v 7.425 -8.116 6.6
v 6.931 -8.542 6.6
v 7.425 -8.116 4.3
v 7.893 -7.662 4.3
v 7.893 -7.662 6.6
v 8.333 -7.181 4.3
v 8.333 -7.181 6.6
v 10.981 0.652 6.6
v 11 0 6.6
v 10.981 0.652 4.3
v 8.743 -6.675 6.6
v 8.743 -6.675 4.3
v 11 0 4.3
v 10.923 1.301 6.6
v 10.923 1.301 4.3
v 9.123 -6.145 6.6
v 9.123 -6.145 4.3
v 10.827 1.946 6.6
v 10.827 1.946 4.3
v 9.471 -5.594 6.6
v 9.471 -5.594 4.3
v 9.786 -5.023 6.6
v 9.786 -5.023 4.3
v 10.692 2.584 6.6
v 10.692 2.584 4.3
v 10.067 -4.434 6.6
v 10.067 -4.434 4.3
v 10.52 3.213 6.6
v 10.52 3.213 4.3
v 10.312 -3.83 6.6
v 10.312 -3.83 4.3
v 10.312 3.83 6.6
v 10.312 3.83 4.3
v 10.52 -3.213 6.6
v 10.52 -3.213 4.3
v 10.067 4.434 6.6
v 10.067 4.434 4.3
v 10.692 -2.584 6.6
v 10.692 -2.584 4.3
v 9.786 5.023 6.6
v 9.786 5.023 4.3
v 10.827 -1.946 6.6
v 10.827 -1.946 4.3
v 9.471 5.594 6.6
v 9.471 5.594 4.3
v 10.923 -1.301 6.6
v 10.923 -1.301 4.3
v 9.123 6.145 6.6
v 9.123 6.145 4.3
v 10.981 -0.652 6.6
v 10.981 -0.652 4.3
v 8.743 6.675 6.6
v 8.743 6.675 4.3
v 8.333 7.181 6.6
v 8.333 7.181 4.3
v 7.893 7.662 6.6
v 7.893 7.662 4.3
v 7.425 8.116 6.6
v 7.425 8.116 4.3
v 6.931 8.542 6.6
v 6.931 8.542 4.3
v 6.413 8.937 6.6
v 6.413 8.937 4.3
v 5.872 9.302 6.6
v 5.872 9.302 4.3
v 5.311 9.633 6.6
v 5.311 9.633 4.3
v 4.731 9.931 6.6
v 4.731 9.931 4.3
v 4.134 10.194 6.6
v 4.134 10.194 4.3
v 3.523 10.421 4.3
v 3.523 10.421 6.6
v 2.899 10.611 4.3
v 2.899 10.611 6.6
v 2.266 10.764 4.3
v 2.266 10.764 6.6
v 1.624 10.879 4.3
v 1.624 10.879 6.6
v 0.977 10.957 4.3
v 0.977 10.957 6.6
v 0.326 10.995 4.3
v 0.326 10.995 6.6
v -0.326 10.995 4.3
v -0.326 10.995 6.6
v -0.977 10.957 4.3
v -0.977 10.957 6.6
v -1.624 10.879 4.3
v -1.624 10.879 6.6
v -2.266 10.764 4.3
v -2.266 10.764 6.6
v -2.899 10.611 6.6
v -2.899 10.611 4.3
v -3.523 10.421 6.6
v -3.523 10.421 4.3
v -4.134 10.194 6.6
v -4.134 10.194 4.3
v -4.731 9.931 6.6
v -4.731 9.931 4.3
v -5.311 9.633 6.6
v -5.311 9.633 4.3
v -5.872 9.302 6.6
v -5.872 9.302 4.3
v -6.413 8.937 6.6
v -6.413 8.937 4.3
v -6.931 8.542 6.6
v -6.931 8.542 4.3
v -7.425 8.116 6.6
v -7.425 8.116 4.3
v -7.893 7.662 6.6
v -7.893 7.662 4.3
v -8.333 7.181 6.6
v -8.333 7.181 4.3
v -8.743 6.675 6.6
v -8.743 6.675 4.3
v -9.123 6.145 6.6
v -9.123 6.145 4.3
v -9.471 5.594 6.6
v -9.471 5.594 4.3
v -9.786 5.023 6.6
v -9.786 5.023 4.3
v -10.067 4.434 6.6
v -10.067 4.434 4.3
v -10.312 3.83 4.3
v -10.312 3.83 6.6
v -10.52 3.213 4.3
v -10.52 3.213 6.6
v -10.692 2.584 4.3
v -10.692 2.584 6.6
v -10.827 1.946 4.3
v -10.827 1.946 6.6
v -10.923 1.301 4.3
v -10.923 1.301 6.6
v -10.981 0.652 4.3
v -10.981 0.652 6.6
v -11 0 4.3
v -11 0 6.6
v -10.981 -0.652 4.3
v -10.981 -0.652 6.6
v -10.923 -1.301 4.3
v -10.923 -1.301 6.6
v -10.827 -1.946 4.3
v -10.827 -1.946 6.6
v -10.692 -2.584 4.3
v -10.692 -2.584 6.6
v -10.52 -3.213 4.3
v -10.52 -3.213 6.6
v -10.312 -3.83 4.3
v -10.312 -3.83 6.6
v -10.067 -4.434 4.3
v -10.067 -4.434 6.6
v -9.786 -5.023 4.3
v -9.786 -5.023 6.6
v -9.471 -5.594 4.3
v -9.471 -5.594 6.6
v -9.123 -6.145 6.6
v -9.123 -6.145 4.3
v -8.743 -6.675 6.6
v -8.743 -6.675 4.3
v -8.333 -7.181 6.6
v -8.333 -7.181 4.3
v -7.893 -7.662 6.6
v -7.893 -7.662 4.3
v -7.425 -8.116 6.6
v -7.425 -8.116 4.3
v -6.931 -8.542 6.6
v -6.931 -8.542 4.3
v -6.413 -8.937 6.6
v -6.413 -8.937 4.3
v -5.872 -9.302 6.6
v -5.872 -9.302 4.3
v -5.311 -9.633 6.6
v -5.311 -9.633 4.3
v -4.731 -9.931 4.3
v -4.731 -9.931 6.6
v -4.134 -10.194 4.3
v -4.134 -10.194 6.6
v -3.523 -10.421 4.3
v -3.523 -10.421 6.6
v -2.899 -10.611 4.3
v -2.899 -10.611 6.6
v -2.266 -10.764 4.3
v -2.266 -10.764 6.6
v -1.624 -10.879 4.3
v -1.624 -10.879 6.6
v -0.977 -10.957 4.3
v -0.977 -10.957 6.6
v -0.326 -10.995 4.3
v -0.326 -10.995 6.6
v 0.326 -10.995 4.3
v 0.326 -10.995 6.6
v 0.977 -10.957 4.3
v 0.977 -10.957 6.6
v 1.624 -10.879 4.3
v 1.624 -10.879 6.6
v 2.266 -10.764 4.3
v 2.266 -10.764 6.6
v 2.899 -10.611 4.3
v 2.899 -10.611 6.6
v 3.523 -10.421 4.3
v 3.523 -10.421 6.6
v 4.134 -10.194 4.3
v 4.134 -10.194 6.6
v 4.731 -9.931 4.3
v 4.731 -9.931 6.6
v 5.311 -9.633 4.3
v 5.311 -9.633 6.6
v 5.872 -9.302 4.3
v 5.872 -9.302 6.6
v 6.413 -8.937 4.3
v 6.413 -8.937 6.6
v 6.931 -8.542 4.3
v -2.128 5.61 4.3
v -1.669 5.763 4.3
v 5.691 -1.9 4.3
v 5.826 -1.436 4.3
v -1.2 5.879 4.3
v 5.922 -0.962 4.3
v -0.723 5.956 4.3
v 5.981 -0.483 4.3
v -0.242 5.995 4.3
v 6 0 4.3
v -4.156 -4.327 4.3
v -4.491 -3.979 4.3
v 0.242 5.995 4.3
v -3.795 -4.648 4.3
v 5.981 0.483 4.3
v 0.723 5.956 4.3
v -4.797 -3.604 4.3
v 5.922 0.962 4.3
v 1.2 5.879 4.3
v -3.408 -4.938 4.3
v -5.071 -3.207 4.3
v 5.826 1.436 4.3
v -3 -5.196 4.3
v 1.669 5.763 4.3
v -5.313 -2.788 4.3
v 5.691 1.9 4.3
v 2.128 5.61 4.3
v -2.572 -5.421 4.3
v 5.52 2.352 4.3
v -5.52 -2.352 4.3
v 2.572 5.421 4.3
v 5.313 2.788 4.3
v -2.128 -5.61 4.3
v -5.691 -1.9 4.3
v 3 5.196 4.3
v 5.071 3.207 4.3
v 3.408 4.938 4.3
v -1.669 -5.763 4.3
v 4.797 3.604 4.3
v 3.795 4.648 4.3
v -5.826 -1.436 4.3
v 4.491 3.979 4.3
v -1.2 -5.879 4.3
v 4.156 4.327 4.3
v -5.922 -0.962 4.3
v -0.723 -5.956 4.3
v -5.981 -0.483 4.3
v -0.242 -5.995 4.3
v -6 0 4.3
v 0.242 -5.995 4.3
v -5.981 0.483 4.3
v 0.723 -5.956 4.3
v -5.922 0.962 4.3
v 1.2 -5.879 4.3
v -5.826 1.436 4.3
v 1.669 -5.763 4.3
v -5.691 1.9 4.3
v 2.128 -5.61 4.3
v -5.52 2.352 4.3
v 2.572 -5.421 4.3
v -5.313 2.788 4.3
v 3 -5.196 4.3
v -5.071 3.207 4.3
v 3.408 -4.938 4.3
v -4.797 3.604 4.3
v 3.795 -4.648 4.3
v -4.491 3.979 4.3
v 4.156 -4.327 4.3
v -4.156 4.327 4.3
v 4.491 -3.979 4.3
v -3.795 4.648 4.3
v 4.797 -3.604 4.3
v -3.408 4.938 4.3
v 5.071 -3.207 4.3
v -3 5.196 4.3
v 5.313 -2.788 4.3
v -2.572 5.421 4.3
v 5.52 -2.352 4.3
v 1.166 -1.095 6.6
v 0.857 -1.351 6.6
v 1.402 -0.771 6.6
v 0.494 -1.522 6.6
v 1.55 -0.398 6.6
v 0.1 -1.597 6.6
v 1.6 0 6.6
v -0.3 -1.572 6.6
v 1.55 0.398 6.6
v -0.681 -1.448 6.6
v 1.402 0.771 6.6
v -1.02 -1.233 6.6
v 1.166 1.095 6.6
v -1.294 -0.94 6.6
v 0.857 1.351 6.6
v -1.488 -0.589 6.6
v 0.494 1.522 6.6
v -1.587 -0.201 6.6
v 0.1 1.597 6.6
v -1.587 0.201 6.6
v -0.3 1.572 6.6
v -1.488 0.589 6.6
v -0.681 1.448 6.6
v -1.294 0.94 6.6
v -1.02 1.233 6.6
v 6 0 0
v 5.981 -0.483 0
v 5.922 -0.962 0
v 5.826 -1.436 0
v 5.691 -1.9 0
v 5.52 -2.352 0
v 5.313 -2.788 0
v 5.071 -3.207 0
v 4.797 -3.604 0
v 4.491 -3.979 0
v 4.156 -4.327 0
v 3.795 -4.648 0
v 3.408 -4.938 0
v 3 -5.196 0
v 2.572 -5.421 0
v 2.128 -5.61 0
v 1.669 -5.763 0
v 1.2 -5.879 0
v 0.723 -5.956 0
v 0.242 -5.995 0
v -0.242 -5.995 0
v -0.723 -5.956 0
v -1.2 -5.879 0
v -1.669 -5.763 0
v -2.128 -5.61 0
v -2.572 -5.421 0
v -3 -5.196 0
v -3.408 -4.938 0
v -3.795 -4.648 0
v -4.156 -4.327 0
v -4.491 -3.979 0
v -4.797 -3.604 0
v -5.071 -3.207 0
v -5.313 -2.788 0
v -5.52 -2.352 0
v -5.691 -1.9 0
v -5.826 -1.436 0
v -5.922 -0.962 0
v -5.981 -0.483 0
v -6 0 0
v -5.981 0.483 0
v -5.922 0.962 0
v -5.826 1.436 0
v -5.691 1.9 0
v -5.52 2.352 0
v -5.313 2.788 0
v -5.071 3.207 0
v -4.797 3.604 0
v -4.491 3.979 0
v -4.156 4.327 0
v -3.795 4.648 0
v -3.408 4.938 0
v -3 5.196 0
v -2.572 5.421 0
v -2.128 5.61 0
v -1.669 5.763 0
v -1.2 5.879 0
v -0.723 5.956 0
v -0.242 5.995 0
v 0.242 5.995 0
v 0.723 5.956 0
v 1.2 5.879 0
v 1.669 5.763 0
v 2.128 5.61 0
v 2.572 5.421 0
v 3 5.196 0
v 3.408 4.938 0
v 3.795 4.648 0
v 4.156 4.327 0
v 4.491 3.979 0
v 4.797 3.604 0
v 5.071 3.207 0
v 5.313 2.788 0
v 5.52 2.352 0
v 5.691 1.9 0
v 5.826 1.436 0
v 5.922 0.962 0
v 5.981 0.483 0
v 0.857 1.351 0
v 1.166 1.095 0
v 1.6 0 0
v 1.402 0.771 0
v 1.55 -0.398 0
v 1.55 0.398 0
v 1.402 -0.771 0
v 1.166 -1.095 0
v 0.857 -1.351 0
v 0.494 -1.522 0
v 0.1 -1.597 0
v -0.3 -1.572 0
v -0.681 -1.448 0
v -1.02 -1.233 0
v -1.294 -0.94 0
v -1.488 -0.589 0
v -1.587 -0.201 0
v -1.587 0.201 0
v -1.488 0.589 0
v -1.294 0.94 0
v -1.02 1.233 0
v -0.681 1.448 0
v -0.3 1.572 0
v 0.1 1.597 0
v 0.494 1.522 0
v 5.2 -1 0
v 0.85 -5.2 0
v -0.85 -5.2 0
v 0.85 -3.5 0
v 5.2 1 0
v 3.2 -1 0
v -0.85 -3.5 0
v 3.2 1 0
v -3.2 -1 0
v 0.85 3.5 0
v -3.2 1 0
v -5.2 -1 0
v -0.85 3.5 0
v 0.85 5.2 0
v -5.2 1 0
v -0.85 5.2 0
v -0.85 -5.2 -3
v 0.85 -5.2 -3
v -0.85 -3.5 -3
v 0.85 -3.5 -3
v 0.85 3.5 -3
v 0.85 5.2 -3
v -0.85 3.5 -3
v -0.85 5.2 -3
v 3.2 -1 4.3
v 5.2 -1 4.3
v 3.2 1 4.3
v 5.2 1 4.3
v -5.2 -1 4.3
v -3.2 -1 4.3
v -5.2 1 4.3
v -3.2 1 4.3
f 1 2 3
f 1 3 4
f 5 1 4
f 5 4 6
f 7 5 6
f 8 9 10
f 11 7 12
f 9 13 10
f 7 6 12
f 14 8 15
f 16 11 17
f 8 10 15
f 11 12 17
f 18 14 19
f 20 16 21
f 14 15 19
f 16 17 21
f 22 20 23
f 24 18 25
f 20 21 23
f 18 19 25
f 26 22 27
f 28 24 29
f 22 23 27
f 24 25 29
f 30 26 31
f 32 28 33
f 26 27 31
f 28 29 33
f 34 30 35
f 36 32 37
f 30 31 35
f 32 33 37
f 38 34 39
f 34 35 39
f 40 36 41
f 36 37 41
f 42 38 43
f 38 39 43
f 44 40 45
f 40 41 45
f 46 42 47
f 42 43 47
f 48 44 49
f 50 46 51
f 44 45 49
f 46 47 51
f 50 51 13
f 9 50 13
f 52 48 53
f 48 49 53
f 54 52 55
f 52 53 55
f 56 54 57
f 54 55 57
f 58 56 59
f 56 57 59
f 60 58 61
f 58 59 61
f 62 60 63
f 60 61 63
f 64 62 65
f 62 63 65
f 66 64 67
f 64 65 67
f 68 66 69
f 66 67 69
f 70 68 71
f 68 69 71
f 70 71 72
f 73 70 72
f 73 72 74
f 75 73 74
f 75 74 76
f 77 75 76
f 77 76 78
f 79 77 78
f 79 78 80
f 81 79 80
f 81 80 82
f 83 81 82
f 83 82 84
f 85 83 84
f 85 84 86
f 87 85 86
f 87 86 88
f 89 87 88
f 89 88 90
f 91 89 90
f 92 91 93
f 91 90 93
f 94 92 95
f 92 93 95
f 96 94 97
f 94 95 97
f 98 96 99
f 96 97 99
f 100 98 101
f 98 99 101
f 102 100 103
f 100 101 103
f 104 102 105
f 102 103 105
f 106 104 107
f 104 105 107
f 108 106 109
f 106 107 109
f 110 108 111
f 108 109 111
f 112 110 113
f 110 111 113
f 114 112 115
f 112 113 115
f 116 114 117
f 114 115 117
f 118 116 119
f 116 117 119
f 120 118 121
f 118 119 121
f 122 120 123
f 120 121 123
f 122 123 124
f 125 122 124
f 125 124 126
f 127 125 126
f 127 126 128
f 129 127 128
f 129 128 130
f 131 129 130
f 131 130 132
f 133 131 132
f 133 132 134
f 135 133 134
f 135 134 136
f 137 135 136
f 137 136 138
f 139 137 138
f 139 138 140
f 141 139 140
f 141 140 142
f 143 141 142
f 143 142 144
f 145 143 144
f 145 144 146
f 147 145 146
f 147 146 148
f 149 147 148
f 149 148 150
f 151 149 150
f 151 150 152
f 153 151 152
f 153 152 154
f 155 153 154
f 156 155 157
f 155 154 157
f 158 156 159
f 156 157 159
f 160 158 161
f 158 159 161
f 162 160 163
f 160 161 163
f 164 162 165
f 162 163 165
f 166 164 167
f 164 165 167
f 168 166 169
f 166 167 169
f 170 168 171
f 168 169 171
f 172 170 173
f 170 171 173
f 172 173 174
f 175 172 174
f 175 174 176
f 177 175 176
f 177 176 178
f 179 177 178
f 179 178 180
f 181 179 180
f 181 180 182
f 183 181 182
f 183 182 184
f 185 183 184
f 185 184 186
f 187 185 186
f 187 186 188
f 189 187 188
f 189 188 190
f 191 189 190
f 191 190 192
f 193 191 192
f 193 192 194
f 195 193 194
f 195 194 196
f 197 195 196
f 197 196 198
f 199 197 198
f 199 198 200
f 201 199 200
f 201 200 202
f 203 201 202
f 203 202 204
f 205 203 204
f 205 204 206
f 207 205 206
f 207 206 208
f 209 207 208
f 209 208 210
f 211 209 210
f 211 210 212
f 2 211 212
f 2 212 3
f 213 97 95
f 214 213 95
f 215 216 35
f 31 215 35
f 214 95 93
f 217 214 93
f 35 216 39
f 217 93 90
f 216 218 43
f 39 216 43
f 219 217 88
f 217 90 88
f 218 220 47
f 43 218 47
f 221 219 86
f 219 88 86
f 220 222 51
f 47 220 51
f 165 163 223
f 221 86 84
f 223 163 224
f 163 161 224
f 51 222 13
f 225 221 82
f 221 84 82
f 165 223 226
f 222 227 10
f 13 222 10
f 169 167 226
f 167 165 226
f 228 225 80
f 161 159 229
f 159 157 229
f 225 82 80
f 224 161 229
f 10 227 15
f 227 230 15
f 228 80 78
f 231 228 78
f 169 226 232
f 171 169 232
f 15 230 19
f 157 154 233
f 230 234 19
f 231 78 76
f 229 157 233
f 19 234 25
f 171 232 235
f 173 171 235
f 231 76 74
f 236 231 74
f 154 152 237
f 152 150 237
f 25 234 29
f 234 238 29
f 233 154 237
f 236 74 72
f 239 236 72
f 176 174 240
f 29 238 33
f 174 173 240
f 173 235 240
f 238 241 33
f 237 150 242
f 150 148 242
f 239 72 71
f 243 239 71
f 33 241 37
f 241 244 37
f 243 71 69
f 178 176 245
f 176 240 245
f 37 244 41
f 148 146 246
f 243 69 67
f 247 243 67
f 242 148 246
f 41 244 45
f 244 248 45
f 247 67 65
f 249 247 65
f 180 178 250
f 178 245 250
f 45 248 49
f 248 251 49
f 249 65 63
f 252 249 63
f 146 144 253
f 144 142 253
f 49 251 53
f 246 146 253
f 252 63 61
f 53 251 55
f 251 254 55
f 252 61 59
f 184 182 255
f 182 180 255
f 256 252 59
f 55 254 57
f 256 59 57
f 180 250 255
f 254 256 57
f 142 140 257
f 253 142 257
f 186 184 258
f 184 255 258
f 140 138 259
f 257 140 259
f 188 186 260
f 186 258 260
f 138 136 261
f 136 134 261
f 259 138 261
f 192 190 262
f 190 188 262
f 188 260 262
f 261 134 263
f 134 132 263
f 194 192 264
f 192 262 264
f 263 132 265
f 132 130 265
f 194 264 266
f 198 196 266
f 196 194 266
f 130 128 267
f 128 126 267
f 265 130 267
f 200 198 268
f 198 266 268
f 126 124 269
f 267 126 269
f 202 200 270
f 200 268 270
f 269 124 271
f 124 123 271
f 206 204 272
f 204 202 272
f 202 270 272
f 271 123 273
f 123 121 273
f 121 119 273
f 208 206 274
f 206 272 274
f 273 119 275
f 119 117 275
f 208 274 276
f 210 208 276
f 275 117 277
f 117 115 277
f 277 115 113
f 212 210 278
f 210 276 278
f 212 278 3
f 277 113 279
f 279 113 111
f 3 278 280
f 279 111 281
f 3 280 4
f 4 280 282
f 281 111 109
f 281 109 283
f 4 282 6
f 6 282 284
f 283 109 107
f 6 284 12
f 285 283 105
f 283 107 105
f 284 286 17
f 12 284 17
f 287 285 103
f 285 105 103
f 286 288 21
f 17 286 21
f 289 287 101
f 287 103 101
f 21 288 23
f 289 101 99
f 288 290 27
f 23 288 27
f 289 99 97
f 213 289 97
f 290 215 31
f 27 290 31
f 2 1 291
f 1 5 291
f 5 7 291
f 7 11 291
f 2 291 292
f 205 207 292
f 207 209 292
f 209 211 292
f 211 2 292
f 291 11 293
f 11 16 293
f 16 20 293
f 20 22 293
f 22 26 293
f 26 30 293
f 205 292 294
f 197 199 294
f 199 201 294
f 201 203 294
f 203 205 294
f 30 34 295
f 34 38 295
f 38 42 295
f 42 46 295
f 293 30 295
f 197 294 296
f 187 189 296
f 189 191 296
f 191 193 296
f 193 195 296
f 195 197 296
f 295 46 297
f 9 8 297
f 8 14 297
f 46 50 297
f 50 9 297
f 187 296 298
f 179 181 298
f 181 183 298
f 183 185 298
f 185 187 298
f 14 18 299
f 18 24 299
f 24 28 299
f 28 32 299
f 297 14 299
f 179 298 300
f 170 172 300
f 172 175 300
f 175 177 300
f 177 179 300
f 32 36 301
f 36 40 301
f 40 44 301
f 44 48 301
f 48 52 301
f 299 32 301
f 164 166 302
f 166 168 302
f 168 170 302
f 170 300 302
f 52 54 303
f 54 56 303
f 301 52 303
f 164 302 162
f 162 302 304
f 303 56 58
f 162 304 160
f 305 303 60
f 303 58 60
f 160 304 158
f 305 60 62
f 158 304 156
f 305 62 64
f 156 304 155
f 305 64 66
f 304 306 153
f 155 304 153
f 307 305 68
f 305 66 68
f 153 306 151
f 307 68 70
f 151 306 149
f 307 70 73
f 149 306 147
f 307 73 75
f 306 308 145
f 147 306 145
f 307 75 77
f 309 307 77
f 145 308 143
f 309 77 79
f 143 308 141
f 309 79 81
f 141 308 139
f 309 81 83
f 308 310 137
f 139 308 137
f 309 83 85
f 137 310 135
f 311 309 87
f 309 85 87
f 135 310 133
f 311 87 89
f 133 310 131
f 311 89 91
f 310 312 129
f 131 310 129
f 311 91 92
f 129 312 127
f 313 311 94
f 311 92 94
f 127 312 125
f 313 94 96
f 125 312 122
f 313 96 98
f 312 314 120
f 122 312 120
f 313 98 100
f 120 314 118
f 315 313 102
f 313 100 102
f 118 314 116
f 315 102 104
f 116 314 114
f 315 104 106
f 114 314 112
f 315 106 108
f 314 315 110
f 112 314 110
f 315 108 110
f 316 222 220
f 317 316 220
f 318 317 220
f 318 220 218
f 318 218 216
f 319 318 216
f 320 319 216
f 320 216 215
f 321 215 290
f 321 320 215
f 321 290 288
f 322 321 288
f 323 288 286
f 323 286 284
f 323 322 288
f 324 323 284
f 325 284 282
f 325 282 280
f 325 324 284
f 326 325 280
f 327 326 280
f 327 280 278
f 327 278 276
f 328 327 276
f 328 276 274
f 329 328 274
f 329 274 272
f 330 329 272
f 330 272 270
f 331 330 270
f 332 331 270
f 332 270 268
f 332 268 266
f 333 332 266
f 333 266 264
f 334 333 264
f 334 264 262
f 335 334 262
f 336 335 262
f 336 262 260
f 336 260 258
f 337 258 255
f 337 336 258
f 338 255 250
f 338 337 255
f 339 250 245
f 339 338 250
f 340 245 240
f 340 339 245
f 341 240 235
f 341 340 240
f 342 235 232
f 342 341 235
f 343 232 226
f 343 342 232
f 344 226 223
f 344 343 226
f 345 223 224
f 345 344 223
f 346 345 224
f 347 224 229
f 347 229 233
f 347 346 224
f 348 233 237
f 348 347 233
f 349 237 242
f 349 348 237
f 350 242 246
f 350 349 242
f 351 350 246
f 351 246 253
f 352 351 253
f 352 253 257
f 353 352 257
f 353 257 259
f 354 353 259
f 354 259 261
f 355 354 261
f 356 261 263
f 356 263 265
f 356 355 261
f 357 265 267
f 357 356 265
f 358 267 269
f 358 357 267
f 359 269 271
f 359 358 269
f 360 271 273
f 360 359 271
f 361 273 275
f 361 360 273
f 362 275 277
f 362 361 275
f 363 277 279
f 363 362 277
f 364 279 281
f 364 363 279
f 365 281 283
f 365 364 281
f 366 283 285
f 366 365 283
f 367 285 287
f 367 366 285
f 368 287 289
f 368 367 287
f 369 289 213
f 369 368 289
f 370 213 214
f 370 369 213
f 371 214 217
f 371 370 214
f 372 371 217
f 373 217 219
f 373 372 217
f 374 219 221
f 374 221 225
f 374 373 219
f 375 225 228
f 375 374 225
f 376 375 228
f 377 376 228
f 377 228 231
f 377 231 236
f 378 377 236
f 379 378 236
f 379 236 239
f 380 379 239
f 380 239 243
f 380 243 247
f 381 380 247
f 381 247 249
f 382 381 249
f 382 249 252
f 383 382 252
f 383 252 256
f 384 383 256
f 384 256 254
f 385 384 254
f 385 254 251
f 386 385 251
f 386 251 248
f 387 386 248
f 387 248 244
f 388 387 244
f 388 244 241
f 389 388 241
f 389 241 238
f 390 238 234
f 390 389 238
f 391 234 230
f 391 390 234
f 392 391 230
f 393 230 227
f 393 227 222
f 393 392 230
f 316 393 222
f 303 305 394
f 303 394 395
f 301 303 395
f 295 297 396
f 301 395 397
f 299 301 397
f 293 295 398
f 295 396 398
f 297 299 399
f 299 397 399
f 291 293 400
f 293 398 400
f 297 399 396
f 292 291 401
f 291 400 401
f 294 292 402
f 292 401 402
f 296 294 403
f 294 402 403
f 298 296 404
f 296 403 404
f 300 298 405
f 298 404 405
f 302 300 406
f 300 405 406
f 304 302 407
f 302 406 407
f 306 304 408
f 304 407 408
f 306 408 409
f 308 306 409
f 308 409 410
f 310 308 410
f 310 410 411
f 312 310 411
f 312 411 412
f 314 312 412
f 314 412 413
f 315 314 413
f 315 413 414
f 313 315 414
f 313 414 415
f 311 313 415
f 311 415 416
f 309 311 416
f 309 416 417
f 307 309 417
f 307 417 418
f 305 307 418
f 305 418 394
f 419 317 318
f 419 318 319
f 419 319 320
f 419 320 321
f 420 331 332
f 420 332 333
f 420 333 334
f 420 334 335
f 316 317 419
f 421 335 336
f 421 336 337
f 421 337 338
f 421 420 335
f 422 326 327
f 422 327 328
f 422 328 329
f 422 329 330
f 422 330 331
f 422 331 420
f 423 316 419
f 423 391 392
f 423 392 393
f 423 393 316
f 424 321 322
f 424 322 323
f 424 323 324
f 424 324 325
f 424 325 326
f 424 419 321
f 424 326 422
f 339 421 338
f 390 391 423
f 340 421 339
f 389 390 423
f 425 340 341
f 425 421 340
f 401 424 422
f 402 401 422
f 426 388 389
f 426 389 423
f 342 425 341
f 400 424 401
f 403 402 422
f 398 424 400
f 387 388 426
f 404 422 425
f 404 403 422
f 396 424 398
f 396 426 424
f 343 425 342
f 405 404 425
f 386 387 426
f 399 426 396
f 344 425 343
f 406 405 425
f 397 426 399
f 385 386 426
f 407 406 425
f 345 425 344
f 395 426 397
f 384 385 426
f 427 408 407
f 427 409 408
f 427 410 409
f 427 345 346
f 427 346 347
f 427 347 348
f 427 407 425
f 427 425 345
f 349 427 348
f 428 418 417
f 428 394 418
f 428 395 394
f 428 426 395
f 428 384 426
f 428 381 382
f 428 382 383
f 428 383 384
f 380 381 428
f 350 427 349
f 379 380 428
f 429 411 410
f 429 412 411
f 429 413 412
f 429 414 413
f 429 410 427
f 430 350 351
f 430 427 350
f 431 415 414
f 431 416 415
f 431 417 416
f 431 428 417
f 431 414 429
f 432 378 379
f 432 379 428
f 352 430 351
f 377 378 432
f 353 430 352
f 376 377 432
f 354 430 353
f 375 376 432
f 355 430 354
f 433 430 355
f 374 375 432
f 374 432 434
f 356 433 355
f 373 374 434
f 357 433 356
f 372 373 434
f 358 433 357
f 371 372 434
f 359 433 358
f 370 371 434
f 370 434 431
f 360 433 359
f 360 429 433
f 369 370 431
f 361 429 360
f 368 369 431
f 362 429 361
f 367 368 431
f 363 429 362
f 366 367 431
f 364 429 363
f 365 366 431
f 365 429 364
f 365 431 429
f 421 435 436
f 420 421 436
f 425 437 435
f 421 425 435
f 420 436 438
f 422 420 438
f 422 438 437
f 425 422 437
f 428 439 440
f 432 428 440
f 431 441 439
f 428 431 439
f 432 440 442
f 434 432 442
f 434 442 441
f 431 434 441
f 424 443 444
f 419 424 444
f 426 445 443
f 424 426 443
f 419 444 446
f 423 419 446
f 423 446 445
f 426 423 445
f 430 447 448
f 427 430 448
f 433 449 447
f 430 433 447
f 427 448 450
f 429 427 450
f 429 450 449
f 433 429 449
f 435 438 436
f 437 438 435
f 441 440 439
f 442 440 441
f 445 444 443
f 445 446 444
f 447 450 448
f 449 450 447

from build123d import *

# Parameters (mm, degrees)
SKETCH_R        = 11
PAD_DEPTH       = 6.6
SKETCH001_R     = 11
SKETCH001_R_2   = 6
POCKET_DEPTH    = 4.3
SKETCH003_W     = 1.7
SKETCH003_H     = 1.7
PAD001_DEPTH    = 3
SKETCH004_W     = 2
SKETCH004_H     = 2
POCKET002_DEPTH = 4.3
SKETCH002_R     = 1.6
POCKET003_DEPTH = 6.601


with BuildPart() as part:
    # Sketch → Pad (new body)
    with BuildSketch(Plane.XY):
        Circle(SKETCH_R)
    extrude(amount=PAD_DEPTH)

    # Sketch001 → Pocket (cut)
    with BuildSketch(Plane(origin=(0, 0, 0), x_dir=(1, 0, 0), z_dir=(0, 0, -1))):
        Circle(SKETCH001_R)
        Circle(SKETCH001_R_2, mode=Mode.SUBTRACT)
    extrude(amount=-POCKET_DEPTH, mode=Mode.SUBTRACT)

    # Sketch003 → Pad001 (new body)
    with BuildSketch(Plane(origin=(0, 0, 0), x_dir=(1, 0, 0), z_dir=(0, 0, -1))):
        with Locations((0, 4.35)):
            Rectangle(SKETCH003_W, SKETCH003_H)
        with Locations((0, -4.35)):
            Rectangle(SKETCH003_W, SKETCH003_H)
    extrude(amount=PAD001_DEPTH)

    # Sketch004 → Pocket002 (cut)
    with BuildSketch(Plane(origin=(0, 0, 0), x_dir=(1, 0, 0), z_dir=(0, 0, -1))):
        with Locations((-4.2, 0)):
            Rectangle(SKETCH004_W, SKETCH004_H)
        with Locations((4.2, 0)):
            Rectangle(SKETCH004_W, SKETCH004_H)
    extrude(amount=-POCKET002_DEPTH, mode=Mode.SUBTRACT)

    # Sketch002 → Pocket003 (cut, through all)
    with BuildSketch(Plane(origin=(0, 0, 0), x_dir=(1, 0, 0), z_dir=(0, 0, -1))):
        Circle(SKETCH002_R)
    extrude(amount=-POCKET003_DEPTH, mode=Mode.SUBTRACT)


solid = part.part
